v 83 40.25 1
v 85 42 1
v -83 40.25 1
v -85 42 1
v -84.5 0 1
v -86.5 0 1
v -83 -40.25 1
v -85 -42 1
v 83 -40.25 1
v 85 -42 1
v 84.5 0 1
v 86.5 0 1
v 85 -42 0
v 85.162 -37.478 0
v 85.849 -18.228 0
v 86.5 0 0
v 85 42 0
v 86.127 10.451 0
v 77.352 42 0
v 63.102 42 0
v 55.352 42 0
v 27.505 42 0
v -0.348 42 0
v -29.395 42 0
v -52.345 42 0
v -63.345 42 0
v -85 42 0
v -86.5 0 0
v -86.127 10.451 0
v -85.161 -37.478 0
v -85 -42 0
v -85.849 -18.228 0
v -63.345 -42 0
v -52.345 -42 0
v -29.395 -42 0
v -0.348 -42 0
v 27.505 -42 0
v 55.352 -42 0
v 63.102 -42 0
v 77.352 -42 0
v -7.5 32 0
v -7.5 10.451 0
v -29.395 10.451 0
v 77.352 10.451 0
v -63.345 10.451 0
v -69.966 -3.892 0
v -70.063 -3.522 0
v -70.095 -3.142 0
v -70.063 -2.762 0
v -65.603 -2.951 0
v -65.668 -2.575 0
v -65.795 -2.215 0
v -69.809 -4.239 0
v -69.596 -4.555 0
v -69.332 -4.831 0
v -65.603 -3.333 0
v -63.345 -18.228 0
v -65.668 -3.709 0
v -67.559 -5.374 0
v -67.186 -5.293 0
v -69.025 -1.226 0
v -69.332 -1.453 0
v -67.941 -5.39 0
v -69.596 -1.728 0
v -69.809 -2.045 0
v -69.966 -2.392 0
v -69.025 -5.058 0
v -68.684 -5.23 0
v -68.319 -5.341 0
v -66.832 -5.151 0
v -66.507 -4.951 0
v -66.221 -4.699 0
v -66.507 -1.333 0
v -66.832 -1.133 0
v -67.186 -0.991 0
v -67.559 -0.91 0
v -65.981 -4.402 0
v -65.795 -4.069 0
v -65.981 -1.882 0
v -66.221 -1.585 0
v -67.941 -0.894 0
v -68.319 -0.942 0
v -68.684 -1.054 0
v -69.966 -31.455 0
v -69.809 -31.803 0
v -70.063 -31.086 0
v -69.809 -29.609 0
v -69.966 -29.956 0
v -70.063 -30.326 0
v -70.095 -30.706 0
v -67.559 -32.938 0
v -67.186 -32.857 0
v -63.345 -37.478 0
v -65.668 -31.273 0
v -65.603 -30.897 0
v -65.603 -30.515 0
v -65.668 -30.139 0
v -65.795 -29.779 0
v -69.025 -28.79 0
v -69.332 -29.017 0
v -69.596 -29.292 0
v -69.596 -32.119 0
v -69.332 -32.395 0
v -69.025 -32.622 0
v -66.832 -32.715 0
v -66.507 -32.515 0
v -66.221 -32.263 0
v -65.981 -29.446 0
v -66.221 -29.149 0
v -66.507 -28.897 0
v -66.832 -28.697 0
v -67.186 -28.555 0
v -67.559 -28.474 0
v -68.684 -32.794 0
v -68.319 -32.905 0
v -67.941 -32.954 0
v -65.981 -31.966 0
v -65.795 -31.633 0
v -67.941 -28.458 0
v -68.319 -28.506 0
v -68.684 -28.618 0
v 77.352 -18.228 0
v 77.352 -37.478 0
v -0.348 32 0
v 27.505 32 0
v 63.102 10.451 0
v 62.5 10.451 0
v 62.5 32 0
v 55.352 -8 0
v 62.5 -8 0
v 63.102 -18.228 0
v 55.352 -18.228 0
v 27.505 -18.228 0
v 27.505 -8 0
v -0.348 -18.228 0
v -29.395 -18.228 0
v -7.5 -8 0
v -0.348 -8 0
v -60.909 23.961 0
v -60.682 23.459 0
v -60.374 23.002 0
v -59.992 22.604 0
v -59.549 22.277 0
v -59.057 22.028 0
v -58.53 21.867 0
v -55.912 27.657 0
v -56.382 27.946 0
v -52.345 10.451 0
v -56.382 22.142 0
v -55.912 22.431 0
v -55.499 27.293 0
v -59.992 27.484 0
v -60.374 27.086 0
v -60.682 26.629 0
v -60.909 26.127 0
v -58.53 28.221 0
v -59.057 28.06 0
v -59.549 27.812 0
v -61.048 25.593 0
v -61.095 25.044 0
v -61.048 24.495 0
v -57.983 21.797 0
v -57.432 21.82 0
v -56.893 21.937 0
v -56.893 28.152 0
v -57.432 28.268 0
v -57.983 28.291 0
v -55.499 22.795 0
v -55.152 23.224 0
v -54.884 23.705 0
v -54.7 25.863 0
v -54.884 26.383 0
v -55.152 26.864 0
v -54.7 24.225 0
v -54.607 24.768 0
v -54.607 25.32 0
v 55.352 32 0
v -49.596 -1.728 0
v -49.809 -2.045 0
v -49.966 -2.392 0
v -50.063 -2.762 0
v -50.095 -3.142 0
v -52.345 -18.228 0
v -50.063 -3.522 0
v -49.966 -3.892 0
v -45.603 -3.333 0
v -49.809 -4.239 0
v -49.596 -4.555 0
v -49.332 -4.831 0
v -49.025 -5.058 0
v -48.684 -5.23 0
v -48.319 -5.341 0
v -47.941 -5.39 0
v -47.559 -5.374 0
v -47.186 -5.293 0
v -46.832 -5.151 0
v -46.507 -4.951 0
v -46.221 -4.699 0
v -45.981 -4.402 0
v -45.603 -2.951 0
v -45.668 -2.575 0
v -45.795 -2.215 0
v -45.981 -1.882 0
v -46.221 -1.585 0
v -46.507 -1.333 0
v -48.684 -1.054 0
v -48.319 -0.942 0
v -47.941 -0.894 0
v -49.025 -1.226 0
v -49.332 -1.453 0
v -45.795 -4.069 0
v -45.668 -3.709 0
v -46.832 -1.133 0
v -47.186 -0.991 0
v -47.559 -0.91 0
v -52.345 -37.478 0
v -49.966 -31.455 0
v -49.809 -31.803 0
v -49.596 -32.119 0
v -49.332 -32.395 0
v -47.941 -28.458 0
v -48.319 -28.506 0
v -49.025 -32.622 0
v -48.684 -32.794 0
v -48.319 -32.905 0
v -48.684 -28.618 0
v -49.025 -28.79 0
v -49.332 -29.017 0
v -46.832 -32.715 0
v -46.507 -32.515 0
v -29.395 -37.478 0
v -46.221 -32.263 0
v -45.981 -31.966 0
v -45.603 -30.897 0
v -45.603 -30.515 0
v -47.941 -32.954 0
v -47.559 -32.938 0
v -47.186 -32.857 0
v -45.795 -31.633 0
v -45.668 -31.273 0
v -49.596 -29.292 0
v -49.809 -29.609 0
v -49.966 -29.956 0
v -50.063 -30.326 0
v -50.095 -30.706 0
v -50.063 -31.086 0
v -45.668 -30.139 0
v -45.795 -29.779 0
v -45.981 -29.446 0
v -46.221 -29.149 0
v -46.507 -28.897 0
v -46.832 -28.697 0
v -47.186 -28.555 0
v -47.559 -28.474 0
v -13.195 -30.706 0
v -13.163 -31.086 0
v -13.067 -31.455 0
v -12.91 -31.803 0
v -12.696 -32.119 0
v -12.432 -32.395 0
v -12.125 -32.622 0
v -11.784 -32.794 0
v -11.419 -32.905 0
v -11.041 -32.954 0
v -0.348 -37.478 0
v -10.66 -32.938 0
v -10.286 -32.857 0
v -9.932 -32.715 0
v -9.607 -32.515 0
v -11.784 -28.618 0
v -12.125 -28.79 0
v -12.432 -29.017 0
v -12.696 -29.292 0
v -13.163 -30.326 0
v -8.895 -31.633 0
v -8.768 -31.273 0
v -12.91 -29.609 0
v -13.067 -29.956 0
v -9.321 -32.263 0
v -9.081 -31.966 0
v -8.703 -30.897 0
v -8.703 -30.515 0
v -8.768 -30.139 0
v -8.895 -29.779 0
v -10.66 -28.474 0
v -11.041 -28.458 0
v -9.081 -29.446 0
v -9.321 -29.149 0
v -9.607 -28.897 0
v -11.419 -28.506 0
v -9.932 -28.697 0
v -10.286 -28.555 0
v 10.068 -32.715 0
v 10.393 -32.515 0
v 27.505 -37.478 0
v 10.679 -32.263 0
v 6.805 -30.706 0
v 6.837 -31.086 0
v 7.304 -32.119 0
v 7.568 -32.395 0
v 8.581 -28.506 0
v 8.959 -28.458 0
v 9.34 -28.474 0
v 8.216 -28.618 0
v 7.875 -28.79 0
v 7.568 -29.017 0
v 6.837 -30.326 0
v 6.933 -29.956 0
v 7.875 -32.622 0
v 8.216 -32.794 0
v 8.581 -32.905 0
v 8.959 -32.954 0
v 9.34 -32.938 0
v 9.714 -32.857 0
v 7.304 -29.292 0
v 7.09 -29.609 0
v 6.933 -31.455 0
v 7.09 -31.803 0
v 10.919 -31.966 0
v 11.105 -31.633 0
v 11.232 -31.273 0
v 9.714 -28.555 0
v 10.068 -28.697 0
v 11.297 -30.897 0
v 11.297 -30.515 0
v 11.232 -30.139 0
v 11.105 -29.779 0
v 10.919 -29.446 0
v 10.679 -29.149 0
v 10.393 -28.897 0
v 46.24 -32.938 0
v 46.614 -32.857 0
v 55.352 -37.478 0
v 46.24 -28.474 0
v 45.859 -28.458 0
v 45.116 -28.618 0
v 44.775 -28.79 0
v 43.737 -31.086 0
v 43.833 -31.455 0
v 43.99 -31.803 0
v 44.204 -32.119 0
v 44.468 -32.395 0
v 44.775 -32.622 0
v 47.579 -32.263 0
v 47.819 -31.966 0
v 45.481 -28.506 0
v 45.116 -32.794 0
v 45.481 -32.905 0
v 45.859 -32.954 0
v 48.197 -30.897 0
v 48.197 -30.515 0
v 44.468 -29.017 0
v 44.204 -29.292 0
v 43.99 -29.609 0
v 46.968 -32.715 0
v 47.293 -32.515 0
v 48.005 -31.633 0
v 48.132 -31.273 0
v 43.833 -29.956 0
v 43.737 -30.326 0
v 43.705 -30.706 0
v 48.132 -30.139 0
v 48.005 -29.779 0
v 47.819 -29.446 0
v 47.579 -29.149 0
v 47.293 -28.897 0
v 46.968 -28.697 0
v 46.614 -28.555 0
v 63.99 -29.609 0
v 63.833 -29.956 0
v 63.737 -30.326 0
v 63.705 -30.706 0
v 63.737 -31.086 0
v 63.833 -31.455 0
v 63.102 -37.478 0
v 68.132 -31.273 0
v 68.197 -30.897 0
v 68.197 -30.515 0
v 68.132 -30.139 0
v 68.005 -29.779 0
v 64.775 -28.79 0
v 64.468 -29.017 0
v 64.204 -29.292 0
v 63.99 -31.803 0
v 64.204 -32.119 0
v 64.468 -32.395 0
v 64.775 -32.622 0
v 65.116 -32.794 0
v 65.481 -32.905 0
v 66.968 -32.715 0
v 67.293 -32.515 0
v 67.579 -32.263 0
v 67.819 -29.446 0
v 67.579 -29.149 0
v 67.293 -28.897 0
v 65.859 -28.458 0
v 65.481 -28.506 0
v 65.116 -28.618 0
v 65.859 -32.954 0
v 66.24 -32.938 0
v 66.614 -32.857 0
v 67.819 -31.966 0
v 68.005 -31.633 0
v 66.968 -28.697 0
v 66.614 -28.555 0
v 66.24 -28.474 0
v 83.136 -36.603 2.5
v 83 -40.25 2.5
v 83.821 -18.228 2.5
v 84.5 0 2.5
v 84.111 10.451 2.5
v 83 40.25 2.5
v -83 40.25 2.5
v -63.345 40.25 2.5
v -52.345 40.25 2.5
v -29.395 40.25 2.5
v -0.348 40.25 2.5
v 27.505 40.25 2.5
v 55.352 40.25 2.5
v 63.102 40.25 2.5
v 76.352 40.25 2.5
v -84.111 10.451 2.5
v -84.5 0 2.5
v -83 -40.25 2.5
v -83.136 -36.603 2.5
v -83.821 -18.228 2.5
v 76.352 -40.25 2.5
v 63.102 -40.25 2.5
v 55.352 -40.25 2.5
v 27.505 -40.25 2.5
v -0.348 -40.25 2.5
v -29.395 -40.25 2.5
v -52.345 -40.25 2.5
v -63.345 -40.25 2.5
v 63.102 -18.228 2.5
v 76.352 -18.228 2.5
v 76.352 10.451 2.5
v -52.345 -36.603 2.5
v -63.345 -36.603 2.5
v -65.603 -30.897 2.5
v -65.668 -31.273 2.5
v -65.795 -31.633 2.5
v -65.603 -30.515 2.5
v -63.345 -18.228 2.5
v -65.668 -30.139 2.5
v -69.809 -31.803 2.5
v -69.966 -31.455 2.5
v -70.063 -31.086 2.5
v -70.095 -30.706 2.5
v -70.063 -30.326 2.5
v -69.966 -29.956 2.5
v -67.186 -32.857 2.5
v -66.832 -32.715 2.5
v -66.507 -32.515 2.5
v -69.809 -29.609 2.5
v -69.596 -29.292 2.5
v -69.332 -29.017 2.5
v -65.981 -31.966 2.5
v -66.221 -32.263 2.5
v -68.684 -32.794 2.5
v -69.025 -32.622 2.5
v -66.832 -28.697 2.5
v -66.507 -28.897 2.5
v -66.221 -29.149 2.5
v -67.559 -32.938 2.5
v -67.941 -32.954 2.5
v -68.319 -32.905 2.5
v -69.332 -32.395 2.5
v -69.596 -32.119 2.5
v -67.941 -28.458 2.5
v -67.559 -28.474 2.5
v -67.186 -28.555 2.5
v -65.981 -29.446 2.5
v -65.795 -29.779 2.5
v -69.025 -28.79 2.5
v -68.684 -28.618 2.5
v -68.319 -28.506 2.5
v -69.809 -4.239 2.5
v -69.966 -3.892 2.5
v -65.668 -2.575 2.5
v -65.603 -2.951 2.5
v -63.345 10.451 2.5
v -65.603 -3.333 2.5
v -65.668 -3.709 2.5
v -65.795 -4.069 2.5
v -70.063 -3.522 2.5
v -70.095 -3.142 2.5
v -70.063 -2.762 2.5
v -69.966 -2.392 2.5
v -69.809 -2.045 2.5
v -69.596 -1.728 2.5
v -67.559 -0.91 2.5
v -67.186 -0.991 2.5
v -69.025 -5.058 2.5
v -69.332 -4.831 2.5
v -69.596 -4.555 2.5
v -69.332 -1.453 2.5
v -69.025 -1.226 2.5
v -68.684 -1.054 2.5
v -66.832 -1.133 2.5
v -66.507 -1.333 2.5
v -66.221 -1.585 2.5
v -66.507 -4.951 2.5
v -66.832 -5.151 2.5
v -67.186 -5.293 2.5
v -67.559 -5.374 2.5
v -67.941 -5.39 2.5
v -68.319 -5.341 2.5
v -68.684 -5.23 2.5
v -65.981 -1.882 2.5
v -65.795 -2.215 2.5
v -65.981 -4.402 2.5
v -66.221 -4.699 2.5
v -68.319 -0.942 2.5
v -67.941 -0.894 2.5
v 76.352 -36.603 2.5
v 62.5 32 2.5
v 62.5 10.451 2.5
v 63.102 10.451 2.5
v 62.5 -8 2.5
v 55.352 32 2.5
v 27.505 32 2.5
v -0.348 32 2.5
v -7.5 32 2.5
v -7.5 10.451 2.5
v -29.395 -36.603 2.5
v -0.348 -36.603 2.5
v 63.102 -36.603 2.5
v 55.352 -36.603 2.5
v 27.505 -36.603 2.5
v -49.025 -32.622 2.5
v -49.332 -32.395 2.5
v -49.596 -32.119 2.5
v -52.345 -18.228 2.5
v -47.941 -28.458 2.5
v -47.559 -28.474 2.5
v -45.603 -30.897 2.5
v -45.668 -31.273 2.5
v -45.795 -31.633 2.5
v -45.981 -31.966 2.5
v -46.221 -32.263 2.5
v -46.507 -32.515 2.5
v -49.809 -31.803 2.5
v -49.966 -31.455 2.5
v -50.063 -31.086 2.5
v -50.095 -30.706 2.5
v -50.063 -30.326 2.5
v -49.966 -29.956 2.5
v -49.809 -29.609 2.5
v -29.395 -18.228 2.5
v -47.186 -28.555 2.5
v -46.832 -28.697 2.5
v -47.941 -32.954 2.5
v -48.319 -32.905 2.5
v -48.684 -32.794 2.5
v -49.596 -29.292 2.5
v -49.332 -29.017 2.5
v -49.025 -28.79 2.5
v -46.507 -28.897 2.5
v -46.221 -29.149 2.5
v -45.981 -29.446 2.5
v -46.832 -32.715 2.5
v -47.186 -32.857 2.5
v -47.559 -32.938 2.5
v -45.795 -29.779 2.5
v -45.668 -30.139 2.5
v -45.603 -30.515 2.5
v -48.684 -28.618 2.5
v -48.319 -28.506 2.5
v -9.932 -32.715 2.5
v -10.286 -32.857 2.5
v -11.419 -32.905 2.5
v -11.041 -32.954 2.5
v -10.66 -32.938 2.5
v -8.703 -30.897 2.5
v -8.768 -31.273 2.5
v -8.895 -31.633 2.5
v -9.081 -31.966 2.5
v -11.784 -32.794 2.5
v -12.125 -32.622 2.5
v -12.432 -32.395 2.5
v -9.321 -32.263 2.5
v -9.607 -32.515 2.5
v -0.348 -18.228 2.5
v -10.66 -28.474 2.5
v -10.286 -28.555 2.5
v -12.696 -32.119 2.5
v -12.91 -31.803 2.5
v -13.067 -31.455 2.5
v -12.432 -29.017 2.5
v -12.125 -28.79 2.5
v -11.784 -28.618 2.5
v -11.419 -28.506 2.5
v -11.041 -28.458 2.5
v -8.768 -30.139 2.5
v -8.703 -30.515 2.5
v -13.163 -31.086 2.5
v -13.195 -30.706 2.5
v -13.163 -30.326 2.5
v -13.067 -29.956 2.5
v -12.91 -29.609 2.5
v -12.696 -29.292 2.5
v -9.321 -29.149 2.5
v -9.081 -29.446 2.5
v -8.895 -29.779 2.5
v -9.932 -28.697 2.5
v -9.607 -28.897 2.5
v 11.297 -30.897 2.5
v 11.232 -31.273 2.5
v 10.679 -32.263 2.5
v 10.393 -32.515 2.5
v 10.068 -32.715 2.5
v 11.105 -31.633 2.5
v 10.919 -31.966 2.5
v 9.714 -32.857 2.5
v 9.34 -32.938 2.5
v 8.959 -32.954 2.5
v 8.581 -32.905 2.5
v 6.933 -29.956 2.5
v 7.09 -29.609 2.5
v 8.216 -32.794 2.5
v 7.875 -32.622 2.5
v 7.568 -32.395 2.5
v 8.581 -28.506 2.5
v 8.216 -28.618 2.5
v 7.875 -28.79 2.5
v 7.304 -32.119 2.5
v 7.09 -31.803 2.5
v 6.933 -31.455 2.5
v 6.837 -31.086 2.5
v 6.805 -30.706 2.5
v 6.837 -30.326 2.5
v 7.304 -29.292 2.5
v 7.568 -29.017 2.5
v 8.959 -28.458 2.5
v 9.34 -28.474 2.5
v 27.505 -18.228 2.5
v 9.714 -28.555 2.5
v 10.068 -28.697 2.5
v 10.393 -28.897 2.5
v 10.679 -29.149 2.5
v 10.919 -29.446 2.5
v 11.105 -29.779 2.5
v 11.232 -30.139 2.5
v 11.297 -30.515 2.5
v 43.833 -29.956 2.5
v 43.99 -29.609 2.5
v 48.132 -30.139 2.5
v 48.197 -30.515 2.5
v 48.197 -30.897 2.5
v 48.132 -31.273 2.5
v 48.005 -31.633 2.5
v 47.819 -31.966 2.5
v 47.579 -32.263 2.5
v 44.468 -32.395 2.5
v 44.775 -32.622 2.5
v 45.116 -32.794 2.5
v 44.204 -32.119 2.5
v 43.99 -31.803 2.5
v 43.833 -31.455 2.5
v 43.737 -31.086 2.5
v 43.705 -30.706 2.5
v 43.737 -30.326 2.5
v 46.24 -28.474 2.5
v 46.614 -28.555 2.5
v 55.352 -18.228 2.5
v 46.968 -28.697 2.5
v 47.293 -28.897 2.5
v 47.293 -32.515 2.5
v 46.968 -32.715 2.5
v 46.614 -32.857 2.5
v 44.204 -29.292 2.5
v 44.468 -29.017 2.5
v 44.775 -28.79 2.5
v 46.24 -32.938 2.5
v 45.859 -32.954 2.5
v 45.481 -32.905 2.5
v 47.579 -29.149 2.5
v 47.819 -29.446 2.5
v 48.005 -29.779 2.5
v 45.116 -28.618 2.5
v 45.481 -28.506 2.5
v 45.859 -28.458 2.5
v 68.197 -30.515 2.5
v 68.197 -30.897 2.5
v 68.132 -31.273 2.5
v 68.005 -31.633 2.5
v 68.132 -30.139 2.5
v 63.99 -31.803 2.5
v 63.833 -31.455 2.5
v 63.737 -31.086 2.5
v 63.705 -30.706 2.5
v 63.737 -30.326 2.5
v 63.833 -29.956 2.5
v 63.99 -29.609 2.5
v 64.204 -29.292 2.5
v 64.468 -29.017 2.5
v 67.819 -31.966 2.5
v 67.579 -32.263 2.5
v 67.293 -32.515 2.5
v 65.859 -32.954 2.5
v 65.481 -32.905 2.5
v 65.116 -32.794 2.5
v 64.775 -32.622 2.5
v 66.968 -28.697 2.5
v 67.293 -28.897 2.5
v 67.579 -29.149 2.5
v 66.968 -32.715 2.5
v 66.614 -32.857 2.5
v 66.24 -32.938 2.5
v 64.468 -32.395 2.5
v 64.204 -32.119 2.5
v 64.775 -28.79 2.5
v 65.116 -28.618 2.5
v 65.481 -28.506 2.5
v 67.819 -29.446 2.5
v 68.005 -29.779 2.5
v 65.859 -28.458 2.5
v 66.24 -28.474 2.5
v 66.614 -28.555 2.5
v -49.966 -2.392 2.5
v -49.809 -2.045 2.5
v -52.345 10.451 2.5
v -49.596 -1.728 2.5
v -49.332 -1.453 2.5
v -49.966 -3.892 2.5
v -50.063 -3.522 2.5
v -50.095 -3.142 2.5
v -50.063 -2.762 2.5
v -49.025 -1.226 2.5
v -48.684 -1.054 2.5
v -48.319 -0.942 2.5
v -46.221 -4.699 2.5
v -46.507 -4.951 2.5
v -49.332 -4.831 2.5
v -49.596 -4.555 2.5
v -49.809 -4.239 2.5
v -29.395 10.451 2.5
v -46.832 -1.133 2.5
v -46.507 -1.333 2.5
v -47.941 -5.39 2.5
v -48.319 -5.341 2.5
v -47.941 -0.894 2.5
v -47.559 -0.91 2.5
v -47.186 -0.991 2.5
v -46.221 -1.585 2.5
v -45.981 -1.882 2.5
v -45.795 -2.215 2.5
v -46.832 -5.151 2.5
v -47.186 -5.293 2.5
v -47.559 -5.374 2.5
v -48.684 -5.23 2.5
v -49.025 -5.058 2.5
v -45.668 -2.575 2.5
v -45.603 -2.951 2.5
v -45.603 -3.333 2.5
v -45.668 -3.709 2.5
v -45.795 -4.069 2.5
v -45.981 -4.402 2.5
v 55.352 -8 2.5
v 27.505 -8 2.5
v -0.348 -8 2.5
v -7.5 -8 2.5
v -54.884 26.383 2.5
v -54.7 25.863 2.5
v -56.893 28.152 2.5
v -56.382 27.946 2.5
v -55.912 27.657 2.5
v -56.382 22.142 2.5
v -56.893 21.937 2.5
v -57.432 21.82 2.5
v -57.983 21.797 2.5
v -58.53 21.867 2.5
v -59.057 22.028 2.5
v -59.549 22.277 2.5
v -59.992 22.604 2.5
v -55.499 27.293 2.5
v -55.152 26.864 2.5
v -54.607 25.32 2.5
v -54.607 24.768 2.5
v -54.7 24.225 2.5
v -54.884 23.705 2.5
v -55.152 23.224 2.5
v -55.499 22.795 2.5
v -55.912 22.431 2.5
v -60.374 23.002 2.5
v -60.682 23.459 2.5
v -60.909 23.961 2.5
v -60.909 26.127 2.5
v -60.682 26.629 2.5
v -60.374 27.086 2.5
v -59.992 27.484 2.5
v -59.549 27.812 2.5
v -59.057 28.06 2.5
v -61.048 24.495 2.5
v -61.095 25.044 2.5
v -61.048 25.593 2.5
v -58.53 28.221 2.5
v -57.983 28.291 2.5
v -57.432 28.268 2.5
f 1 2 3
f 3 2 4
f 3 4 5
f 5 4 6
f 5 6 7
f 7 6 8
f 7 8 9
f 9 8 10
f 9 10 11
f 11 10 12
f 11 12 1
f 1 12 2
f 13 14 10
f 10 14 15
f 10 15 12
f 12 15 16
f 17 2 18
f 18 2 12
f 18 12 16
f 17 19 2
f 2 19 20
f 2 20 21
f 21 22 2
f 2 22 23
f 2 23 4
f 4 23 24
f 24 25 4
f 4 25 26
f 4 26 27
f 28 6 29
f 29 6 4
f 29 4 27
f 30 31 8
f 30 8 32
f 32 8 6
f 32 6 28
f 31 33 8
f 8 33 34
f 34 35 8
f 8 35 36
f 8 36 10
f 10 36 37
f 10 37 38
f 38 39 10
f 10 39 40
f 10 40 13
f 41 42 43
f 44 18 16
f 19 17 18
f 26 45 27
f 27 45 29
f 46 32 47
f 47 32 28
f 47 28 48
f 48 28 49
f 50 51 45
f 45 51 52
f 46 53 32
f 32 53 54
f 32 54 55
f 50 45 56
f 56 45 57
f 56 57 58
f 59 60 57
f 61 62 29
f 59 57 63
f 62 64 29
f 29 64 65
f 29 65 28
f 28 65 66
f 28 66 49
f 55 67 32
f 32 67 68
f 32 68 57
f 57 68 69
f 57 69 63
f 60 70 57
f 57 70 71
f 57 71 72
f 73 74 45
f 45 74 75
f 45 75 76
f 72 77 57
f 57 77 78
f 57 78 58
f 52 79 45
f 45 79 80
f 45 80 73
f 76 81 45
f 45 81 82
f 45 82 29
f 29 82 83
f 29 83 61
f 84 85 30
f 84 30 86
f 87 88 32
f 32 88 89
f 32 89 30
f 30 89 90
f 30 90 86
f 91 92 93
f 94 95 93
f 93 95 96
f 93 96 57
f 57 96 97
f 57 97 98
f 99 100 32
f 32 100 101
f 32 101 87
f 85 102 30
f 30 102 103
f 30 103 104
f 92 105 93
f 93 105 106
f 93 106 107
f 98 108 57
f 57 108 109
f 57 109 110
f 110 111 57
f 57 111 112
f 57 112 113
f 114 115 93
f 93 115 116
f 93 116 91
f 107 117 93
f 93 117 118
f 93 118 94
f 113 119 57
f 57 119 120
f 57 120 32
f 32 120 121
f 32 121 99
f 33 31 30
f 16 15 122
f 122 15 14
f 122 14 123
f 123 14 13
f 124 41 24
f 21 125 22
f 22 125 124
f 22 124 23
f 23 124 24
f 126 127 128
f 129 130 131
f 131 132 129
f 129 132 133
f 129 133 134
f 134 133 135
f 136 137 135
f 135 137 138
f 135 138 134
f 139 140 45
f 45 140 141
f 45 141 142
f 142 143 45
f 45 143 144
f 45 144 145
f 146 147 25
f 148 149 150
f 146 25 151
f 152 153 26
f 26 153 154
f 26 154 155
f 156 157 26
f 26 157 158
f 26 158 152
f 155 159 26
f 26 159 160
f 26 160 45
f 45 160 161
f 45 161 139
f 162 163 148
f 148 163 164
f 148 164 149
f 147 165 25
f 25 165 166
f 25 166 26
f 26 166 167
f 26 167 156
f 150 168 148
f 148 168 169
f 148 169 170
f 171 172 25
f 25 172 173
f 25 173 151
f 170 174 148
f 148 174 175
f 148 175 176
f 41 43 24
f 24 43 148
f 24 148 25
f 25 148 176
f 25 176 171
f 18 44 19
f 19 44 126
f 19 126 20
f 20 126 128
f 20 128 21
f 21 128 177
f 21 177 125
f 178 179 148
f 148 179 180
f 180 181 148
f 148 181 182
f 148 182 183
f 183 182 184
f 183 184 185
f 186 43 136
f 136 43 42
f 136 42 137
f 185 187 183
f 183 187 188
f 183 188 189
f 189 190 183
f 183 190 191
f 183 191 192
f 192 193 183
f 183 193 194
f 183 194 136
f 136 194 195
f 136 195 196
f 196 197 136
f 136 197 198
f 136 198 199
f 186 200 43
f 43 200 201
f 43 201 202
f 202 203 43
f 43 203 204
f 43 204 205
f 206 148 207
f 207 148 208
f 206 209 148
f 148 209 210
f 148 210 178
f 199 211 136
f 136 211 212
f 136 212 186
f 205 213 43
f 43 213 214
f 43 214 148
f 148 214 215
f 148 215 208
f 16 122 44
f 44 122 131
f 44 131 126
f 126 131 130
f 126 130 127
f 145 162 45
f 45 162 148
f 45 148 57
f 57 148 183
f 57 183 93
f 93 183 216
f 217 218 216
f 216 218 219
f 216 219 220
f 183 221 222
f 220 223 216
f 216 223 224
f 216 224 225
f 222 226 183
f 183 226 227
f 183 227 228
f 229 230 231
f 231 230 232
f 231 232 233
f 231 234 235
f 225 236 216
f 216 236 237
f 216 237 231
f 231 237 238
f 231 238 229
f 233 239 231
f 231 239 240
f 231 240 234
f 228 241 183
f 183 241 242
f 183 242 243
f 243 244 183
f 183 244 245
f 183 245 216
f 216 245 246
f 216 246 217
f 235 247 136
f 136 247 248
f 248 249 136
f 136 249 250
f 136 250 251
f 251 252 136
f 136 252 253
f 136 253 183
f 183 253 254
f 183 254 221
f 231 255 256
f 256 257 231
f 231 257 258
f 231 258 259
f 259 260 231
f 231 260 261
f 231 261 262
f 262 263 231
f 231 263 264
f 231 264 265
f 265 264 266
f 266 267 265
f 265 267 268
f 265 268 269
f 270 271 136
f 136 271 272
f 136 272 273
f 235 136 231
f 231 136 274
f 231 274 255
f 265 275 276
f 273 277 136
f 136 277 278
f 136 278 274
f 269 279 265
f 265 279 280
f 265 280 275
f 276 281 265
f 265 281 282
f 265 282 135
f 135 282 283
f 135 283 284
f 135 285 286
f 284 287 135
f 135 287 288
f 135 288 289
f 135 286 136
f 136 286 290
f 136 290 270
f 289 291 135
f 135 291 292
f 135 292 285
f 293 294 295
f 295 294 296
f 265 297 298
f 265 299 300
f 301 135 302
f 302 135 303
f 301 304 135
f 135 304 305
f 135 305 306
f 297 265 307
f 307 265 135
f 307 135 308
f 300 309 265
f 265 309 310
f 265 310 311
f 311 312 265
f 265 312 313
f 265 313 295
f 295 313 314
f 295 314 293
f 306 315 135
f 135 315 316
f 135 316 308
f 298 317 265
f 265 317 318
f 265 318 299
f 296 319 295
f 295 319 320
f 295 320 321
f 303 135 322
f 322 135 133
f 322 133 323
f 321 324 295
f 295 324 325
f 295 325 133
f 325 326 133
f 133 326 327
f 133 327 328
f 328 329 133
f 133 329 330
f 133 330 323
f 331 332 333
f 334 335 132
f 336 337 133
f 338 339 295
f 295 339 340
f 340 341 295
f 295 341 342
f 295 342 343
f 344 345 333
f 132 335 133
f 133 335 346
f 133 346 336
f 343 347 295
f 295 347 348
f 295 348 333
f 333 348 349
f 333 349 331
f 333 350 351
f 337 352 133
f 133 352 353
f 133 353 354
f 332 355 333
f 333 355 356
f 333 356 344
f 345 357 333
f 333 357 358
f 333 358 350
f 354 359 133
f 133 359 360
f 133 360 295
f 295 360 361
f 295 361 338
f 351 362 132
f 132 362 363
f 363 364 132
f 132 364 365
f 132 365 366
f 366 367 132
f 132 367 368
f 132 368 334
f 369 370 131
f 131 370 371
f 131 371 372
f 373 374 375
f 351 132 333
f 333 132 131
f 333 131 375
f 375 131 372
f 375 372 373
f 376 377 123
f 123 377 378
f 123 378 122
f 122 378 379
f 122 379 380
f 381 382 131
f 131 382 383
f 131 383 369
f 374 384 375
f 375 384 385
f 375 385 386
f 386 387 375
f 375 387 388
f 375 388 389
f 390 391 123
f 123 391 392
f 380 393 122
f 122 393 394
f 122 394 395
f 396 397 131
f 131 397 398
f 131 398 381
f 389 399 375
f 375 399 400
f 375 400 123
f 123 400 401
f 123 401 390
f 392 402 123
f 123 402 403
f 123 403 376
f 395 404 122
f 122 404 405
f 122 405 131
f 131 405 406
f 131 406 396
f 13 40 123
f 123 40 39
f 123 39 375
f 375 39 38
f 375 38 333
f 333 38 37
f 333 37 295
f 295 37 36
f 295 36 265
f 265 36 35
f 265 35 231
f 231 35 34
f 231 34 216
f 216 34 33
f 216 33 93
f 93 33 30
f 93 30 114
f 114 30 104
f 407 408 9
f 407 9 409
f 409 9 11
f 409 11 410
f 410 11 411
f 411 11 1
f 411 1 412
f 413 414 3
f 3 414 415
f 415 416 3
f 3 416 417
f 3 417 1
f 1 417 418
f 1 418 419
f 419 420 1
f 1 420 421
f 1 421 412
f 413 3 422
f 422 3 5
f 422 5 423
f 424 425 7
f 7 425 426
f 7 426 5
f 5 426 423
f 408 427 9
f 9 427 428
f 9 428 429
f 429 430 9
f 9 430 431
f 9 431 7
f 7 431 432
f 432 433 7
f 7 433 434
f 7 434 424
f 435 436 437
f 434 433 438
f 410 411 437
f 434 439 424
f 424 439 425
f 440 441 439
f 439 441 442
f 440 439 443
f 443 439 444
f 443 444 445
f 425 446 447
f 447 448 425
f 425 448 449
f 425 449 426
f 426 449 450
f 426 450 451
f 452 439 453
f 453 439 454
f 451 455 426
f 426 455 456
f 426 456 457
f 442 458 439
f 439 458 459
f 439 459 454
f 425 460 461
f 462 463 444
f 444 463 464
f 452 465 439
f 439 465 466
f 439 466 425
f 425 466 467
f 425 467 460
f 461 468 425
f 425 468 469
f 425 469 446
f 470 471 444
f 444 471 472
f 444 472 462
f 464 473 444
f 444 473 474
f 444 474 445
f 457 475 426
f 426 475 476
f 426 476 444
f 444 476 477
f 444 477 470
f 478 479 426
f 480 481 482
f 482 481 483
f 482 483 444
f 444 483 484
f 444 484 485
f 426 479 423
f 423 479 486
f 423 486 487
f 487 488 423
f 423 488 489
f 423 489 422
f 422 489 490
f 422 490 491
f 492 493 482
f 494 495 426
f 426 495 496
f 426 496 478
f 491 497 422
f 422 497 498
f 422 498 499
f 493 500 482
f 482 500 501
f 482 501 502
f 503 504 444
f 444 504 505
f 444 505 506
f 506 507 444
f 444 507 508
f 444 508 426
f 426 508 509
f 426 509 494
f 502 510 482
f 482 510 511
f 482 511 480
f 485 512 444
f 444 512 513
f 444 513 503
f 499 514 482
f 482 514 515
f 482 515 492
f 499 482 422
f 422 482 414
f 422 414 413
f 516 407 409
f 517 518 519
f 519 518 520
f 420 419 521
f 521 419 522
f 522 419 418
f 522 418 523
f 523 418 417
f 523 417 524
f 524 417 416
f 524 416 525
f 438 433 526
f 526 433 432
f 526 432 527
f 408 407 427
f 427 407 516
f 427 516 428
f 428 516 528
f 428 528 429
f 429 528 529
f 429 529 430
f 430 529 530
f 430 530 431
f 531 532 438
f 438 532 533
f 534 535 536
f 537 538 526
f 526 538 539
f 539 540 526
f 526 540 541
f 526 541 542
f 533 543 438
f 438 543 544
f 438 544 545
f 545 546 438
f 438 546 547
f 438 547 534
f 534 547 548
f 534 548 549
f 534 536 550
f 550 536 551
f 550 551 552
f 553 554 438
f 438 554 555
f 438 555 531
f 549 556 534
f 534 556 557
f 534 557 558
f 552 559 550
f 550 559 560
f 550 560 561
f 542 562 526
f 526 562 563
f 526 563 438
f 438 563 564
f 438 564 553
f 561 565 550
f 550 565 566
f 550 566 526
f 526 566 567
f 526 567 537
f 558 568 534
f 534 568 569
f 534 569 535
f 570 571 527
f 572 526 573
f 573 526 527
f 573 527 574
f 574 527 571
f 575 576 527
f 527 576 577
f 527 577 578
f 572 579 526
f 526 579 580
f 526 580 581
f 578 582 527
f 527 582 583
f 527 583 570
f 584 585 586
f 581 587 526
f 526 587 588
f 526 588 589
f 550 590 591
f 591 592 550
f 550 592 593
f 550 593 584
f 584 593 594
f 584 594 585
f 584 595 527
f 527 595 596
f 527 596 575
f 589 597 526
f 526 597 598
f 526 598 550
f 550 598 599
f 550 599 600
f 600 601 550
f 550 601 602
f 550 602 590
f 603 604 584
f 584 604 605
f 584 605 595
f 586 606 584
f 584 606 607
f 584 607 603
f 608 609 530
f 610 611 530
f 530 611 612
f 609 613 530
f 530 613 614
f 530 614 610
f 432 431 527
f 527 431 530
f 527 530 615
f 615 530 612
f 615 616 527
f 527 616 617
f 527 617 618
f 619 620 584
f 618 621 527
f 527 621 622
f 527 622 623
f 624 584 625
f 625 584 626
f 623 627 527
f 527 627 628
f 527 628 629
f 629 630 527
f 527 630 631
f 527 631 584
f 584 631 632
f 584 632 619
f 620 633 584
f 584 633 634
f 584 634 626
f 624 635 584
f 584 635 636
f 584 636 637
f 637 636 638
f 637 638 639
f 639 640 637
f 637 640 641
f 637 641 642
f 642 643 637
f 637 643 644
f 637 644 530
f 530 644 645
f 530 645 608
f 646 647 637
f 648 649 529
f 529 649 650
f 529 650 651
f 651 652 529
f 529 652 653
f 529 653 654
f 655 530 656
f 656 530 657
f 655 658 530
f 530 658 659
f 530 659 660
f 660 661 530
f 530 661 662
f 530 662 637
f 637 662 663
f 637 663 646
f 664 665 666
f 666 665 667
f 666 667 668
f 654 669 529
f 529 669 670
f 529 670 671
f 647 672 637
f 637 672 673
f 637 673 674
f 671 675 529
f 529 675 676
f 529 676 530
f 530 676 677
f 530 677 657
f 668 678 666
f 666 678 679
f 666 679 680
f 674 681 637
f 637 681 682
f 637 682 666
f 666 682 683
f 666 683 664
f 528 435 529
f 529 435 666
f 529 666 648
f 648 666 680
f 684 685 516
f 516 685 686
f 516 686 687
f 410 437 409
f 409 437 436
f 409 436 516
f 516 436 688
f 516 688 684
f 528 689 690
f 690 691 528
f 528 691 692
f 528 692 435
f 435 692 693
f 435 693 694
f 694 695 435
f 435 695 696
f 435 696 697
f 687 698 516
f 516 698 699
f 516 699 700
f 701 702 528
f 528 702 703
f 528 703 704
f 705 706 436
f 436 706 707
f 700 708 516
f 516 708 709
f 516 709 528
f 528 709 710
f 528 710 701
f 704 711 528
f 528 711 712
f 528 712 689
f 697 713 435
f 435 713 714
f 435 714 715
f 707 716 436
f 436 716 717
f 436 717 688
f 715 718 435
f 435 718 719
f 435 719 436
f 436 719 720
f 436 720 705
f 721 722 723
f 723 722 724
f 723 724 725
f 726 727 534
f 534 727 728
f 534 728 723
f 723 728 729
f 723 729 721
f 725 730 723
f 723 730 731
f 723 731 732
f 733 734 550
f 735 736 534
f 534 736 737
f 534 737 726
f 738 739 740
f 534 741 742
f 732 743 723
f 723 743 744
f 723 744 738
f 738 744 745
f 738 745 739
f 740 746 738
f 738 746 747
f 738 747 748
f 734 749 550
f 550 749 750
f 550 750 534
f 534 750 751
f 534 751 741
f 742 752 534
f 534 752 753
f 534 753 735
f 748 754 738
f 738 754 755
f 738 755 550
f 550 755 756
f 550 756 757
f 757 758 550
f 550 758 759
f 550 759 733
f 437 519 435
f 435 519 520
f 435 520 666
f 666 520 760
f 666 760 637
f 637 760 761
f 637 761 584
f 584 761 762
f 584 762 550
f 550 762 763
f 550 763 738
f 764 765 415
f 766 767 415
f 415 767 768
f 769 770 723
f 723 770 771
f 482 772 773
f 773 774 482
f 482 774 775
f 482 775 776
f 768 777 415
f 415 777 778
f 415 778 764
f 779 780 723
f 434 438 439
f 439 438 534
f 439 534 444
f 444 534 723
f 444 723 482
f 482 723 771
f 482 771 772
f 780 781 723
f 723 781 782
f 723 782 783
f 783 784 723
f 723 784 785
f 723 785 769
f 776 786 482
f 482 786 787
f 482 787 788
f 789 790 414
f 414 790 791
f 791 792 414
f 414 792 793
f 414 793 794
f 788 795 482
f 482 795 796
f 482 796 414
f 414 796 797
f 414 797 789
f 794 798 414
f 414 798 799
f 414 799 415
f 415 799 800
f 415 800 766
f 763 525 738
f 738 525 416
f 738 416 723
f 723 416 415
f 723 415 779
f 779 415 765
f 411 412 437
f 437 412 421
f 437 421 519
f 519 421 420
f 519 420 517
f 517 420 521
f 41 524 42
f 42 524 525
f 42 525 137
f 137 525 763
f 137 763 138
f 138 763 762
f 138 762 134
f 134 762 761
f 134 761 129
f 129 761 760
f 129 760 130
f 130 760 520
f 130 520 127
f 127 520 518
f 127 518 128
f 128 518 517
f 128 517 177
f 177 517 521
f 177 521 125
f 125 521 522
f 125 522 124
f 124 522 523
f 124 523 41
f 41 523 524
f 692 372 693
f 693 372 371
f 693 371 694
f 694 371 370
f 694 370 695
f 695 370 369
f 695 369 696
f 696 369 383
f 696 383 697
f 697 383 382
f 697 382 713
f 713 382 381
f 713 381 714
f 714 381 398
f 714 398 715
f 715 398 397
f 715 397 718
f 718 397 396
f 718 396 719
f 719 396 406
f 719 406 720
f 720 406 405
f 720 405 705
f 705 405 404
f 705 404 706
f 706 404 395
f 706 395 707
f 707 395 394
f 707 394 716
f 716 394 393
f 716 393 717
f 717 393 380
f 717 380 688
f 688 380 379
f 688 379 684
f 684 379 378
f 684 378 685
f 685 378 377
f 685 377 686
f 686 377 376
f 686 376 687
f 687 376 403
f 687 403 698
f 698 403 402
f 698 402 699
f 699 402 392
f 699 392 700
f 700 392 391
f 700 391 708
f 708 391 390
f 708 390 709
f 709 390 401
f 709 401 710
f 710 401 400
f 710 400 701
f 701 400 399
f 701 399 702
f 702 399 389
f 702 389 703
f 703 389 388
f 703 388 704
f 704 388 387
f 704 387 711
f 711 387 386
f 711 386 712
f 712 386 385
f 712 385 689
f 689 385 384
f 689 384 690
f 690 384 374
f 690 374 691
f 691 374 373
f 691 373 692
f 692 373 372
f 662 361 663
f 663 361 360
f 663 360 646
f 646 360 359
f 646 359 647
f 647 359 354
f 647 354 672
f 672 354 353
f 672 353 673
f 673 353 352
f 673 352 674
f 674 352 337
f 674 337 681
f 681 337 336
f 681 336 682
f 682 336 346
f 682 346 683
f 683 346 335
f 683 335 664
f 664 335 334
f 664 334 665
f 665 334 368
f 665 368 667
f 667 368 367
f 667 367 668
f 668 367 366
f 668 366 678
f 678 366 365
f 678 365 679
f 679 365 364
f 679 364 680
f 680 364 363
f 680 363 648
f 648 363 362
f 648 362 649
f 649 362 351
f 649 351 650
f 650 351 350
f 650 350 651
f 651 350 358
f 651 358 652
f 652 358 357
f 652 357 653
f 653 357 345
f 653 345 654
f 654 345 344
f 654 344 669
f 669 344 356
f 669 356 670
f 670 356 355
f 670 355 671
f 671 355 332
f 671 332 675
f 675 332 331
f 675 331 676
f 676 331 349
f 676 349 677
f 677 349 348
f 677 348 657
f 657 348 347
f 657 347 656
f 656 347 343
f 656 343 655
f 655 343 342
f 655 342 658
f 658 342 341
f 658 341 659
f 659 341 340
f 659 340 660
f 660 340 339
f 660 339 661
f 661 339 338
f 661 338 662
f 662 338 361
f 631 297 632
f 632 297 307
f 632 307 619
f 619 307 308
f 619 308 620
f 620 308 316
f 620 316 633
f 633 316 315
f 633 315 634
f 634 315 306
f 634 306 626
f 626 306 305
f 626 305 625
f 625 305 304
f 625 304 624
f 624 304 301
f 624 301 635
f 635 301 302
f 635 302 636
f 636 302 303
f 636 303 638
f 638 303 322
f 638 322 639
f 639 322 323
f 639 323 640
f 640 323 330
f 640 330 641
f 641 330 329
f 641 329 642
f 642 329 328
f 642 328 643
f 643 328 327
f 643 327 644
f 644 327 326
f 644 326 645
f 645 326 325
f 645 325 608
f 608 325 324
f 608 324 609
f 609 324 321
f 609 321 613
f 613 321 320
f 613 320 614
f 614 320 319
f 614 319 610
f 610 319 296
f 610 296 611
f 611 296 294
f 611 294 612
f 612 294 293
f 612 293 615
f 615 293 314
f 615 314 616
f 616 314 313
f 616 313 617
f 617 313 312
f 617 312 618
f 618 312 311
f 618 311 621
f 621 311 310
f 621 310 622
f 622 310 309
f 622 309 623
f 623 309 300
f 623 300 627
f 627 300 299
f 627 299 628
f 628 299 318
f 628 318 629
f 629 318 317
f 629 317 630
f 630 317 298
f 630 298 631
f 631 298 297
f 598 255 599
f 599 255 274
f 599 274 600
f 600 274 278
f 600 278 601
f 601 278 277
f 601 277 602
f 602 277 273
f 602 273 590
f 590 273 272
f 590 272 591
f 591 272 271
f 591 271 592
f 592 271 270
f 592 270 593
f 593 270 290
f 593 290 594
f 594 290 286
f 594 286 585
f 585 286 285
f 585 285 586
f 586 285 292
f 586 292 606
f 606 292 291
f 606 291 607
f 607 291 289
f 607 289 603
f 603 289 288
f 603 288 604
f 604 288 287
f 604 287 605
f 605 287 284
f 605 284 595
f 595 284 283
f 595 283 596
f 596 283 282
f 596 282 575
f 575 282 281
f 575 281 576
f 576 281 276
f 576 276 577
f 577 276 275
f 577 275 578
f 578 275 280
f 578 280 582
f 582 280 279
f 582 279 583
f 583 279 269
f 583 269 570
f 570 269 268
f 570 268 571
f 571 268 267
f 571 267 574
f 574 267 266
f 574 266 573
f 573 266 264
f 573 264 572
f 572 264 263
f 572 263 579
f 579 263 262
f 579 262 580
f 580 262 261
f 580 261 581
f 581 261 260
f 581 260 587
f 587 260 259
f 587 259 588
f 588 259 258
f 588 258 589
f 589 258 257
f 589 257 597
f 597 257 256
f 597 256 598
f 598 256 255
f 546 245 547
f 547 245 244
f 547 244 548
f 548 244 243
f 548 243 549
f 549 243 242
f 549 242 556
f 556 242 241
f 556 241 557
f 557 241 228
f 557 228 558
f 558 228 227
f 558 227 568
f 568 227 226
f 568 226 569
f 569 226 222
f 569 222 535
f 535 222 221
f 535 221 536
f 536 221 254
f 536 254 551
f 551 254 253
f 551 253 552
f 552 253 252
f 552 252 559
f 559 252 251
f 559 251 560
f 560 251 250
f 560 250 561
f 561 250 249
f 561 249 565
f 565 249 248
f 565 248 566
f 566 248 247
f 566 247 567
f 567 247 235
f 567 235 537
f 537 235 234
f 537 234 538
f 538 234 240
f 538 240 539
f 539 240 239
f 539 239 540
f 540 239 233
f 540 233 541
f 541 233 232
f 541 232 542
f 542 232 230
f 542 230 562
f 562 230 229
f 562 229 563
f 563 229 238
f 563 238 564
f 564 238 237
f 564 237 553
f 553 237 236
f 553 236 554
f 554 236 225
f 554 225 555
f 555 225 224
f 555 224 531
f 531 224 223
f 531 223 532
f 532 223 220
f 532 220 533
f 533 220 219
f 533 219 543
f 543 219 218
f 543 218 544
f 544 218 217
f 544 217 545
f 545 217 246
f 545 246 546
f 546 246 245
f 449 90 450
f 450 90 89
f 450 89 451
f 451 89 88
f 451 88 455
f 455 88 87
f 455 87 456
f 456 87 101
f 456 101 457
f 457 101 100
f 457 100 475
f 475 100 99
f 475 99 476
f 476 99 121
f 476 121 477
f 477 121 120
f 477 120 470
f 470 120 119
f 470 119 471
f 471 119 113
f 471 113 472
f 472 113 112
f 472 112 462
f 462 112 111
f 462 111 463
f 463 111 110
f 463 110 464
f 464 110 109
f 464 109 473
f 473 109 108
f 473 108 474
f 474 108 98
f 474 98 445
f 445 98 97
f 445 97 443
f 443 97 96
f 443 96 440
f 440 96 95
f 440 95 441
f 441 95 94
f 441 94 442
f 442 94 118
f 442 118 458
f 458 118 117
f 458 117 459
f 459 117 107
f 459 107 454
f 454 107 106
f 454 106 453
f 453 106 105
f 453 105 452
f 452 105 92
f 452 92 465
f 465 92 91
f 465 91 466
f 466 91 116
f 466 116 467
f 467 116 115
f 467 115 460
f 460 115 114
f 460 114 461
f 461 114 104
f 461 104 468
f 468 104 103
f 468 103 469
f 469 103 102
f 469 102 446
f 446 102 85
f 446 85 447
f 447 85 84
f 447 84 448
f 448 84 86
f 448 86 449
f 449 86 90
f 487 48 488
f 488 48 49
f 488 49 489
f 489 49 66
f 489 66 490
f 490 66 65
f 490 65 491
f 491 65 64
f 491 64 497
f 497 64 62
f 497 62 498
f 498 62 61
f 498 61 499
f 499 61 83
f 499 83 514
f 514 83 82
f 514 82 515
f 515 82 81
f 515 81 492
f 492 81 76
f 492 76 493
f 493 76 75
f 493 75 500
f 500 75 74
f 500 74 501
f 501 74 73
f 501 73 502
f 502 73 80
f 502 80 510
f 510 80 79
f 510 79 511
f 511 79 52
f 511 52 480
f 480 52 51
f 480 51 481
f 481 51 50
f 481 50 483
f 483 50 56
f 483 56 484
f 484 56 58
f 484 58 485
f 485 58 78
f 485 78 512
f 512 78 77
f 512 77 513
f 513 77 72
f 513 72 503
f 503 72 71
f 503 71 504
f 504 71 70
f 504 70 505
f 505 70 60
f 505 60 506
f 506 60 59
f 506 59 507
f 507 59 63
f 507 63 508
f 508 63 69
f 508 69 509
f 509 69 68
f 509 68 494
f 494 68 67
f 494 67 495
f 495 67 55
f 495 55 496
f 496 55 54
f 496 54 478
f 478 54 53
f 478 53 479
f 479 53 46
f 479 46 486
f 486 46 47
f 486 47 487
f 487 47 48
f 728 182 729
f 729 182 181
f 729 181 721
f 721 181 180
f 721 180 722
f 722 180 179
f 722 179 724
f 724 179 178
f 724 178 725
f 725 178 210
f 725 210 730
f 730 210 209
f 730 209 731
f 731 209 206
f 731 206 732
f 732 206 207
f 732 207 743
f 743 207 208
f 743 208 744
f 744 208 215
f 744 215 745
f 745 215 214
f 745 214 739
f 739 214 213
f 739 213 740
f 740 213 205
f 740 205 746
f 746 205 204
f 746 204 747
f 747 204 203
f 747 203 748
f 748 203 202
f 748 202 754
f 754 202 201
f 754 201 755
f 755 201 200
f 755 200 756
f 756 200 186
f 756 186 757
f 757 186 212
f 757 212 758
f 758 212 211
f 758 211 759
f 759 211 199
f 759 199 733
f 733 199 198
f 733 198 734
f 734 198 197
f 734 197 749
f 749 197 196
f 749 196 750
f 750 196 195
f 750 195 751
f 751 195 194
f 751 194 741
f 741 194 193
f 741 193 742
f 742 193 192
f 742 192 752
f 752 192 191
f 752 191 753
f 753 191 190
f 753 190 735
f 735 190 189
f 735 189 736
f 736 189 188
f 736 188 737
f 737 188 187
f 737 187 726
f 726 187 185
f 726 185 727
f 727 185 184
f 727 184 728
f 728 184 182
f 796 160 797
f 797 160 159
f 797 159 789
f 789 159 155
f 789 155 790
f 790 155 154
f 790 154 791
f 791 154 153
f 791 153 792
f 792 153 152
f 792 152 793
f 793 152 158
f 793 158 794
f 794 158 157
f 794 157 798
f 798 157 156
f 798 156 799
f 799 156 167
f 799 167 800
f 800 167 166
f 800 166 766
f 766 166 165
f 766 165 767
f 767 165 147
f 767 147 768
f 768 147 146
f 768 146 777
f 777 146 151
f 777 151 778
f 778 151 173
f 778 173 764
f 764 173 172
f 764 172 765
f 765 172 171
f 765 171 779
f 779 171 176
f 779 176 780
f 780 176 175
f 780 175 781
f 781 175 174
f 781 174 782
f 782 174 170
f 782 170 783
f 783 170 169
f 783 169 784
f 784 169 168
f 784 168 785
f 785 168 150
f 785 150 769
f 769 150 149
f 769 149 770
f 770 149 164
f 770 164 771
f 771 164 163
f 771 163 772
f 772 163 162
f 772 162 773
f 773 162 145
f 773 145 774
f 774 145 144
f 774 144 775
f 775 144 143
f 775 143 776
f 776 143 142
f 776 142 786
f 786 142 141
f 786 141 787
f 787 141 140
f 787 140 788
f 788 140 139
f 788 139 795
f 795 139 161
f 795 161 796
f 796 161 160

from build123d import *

# Parameters (mm, degrees)
BOSS_EXTRUDE1_DEPTH = 1
BOSS_EXTRUDE2_DEPTH = 1.5
SKETCH3_W           = 70
SKETCH3_H           = 40
CUT_EXTRUDE1_DEPTH  = 10
SKETCH4_R           = 2.25
SKETCH4_R_2         = 3.25
CUT_EXTRUDE3_DEPTH  = 10


with BuildPart() as part:
    # Sketch1 → Boss-Extrude1 (new body)
    with BuildSketch(Plane.XY):
        Polygon((-85, 42), (85, 42), (86.5, 0), (85, -42), (-85, -42), (-86.5, 0), align=None)
    extrude(amount=BOSS_EXTRUDE1_DEPTH)

    # Sketch2 → Boss-Extrude2 (add)
    with BuildSketch(Plane.XY.offset(1)):
        Polygon((-83, 40.25), (83, 40.25), (84.5, 0), (83, -40.25), (-83, -40.25), (-84.5, 0), align=None)
    extrude(amount=BOSS_EXTRUDE2_DEPTH)

    # Sketch3 → Cut-Extrude1 (cut)
    with BuildSketch(Plane(origin=(0, 0, 0), x_dir=(-1, 0, 0), z_dir=(0, 0, -1))):
        with Locations((-27.5, 12)):
            Rectangle(SKETCH3_W, SKETCH3_H)
    extrude(amount=-CUT_EXTRUDE1_DEPTH, mode=Mode.SUBTRACT)

    # Sketch4 → Cut-Extrude3 (cut)
    with BuildSketch(Plane(origin=(0, 0, 0), x_dir=(-1, 0, 0), z_dir=(0, 0, -1))):
        with Locations((-65.954695658, -30.705934388)):
            Circle(SKETCH4_R)
        with Locations((-45.954695658, -30.705934388)):
            Circle(SKETCH4_R)
        with Locations((-9.054695658, -30.705934388)):
            Circle(SKETCH4_R)
        with Locations((10.945304342, -30.705934388)):
            Circle(SKETCH4_R)
        with Locations((47.845022936, -30.705934388)):
            Circle(SKETCH4_R)
        with Locations((67.845022936, -30.705934388)):
            Circle(SKETCH4_R)
        with Locations((67.845022936, -3.141963924)):
            Circle(SKETCH4_R)
        with Locations((47.845022936, -3.141963924)):
            Circle(SKETCH4_R)
        with Locations((57.845022936, 25.044065612)):
            Circle(SKETCH4_R_2)
    extrude(amount=-CUT_EXTRUDE3_DEPTH, mode=Mode.SUBTRACT)


solid = part.part
